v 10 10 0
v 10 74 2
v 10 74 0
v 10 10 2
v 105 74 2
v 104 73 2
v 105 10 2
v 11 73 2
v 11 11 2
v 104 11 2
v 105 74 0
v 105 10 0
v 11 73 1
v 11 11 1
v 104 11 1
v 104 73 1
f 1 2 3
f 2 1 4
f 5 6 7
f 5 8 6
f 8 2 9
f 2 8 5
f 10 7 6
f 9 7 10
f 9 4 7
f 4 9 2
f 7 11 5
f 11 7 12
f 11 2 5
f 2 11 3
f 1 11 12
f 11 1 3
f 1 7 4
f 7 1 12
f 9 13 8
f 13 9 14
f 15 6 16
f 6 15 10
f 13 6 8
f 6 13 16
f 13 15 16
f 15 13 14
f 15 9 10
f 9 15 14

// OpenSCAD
$fs = 0.1;
$fn = 200;

length = 115;
width = 84; 
height = 2; 
radius = 10;
doubleRadius = 2*radius;

translate([10,10,0])
{
difference()
{   
    roundedBox(length, width, height);
    translate([1,1,1])
        {
   
        roundedBox(length-2, width-2, height-1);
        }
    }
}




module roundedBox(length, width, height, radius)
{

        cube (size=[length-doubleRadius, width-doubleRadius, height]);
     

}
